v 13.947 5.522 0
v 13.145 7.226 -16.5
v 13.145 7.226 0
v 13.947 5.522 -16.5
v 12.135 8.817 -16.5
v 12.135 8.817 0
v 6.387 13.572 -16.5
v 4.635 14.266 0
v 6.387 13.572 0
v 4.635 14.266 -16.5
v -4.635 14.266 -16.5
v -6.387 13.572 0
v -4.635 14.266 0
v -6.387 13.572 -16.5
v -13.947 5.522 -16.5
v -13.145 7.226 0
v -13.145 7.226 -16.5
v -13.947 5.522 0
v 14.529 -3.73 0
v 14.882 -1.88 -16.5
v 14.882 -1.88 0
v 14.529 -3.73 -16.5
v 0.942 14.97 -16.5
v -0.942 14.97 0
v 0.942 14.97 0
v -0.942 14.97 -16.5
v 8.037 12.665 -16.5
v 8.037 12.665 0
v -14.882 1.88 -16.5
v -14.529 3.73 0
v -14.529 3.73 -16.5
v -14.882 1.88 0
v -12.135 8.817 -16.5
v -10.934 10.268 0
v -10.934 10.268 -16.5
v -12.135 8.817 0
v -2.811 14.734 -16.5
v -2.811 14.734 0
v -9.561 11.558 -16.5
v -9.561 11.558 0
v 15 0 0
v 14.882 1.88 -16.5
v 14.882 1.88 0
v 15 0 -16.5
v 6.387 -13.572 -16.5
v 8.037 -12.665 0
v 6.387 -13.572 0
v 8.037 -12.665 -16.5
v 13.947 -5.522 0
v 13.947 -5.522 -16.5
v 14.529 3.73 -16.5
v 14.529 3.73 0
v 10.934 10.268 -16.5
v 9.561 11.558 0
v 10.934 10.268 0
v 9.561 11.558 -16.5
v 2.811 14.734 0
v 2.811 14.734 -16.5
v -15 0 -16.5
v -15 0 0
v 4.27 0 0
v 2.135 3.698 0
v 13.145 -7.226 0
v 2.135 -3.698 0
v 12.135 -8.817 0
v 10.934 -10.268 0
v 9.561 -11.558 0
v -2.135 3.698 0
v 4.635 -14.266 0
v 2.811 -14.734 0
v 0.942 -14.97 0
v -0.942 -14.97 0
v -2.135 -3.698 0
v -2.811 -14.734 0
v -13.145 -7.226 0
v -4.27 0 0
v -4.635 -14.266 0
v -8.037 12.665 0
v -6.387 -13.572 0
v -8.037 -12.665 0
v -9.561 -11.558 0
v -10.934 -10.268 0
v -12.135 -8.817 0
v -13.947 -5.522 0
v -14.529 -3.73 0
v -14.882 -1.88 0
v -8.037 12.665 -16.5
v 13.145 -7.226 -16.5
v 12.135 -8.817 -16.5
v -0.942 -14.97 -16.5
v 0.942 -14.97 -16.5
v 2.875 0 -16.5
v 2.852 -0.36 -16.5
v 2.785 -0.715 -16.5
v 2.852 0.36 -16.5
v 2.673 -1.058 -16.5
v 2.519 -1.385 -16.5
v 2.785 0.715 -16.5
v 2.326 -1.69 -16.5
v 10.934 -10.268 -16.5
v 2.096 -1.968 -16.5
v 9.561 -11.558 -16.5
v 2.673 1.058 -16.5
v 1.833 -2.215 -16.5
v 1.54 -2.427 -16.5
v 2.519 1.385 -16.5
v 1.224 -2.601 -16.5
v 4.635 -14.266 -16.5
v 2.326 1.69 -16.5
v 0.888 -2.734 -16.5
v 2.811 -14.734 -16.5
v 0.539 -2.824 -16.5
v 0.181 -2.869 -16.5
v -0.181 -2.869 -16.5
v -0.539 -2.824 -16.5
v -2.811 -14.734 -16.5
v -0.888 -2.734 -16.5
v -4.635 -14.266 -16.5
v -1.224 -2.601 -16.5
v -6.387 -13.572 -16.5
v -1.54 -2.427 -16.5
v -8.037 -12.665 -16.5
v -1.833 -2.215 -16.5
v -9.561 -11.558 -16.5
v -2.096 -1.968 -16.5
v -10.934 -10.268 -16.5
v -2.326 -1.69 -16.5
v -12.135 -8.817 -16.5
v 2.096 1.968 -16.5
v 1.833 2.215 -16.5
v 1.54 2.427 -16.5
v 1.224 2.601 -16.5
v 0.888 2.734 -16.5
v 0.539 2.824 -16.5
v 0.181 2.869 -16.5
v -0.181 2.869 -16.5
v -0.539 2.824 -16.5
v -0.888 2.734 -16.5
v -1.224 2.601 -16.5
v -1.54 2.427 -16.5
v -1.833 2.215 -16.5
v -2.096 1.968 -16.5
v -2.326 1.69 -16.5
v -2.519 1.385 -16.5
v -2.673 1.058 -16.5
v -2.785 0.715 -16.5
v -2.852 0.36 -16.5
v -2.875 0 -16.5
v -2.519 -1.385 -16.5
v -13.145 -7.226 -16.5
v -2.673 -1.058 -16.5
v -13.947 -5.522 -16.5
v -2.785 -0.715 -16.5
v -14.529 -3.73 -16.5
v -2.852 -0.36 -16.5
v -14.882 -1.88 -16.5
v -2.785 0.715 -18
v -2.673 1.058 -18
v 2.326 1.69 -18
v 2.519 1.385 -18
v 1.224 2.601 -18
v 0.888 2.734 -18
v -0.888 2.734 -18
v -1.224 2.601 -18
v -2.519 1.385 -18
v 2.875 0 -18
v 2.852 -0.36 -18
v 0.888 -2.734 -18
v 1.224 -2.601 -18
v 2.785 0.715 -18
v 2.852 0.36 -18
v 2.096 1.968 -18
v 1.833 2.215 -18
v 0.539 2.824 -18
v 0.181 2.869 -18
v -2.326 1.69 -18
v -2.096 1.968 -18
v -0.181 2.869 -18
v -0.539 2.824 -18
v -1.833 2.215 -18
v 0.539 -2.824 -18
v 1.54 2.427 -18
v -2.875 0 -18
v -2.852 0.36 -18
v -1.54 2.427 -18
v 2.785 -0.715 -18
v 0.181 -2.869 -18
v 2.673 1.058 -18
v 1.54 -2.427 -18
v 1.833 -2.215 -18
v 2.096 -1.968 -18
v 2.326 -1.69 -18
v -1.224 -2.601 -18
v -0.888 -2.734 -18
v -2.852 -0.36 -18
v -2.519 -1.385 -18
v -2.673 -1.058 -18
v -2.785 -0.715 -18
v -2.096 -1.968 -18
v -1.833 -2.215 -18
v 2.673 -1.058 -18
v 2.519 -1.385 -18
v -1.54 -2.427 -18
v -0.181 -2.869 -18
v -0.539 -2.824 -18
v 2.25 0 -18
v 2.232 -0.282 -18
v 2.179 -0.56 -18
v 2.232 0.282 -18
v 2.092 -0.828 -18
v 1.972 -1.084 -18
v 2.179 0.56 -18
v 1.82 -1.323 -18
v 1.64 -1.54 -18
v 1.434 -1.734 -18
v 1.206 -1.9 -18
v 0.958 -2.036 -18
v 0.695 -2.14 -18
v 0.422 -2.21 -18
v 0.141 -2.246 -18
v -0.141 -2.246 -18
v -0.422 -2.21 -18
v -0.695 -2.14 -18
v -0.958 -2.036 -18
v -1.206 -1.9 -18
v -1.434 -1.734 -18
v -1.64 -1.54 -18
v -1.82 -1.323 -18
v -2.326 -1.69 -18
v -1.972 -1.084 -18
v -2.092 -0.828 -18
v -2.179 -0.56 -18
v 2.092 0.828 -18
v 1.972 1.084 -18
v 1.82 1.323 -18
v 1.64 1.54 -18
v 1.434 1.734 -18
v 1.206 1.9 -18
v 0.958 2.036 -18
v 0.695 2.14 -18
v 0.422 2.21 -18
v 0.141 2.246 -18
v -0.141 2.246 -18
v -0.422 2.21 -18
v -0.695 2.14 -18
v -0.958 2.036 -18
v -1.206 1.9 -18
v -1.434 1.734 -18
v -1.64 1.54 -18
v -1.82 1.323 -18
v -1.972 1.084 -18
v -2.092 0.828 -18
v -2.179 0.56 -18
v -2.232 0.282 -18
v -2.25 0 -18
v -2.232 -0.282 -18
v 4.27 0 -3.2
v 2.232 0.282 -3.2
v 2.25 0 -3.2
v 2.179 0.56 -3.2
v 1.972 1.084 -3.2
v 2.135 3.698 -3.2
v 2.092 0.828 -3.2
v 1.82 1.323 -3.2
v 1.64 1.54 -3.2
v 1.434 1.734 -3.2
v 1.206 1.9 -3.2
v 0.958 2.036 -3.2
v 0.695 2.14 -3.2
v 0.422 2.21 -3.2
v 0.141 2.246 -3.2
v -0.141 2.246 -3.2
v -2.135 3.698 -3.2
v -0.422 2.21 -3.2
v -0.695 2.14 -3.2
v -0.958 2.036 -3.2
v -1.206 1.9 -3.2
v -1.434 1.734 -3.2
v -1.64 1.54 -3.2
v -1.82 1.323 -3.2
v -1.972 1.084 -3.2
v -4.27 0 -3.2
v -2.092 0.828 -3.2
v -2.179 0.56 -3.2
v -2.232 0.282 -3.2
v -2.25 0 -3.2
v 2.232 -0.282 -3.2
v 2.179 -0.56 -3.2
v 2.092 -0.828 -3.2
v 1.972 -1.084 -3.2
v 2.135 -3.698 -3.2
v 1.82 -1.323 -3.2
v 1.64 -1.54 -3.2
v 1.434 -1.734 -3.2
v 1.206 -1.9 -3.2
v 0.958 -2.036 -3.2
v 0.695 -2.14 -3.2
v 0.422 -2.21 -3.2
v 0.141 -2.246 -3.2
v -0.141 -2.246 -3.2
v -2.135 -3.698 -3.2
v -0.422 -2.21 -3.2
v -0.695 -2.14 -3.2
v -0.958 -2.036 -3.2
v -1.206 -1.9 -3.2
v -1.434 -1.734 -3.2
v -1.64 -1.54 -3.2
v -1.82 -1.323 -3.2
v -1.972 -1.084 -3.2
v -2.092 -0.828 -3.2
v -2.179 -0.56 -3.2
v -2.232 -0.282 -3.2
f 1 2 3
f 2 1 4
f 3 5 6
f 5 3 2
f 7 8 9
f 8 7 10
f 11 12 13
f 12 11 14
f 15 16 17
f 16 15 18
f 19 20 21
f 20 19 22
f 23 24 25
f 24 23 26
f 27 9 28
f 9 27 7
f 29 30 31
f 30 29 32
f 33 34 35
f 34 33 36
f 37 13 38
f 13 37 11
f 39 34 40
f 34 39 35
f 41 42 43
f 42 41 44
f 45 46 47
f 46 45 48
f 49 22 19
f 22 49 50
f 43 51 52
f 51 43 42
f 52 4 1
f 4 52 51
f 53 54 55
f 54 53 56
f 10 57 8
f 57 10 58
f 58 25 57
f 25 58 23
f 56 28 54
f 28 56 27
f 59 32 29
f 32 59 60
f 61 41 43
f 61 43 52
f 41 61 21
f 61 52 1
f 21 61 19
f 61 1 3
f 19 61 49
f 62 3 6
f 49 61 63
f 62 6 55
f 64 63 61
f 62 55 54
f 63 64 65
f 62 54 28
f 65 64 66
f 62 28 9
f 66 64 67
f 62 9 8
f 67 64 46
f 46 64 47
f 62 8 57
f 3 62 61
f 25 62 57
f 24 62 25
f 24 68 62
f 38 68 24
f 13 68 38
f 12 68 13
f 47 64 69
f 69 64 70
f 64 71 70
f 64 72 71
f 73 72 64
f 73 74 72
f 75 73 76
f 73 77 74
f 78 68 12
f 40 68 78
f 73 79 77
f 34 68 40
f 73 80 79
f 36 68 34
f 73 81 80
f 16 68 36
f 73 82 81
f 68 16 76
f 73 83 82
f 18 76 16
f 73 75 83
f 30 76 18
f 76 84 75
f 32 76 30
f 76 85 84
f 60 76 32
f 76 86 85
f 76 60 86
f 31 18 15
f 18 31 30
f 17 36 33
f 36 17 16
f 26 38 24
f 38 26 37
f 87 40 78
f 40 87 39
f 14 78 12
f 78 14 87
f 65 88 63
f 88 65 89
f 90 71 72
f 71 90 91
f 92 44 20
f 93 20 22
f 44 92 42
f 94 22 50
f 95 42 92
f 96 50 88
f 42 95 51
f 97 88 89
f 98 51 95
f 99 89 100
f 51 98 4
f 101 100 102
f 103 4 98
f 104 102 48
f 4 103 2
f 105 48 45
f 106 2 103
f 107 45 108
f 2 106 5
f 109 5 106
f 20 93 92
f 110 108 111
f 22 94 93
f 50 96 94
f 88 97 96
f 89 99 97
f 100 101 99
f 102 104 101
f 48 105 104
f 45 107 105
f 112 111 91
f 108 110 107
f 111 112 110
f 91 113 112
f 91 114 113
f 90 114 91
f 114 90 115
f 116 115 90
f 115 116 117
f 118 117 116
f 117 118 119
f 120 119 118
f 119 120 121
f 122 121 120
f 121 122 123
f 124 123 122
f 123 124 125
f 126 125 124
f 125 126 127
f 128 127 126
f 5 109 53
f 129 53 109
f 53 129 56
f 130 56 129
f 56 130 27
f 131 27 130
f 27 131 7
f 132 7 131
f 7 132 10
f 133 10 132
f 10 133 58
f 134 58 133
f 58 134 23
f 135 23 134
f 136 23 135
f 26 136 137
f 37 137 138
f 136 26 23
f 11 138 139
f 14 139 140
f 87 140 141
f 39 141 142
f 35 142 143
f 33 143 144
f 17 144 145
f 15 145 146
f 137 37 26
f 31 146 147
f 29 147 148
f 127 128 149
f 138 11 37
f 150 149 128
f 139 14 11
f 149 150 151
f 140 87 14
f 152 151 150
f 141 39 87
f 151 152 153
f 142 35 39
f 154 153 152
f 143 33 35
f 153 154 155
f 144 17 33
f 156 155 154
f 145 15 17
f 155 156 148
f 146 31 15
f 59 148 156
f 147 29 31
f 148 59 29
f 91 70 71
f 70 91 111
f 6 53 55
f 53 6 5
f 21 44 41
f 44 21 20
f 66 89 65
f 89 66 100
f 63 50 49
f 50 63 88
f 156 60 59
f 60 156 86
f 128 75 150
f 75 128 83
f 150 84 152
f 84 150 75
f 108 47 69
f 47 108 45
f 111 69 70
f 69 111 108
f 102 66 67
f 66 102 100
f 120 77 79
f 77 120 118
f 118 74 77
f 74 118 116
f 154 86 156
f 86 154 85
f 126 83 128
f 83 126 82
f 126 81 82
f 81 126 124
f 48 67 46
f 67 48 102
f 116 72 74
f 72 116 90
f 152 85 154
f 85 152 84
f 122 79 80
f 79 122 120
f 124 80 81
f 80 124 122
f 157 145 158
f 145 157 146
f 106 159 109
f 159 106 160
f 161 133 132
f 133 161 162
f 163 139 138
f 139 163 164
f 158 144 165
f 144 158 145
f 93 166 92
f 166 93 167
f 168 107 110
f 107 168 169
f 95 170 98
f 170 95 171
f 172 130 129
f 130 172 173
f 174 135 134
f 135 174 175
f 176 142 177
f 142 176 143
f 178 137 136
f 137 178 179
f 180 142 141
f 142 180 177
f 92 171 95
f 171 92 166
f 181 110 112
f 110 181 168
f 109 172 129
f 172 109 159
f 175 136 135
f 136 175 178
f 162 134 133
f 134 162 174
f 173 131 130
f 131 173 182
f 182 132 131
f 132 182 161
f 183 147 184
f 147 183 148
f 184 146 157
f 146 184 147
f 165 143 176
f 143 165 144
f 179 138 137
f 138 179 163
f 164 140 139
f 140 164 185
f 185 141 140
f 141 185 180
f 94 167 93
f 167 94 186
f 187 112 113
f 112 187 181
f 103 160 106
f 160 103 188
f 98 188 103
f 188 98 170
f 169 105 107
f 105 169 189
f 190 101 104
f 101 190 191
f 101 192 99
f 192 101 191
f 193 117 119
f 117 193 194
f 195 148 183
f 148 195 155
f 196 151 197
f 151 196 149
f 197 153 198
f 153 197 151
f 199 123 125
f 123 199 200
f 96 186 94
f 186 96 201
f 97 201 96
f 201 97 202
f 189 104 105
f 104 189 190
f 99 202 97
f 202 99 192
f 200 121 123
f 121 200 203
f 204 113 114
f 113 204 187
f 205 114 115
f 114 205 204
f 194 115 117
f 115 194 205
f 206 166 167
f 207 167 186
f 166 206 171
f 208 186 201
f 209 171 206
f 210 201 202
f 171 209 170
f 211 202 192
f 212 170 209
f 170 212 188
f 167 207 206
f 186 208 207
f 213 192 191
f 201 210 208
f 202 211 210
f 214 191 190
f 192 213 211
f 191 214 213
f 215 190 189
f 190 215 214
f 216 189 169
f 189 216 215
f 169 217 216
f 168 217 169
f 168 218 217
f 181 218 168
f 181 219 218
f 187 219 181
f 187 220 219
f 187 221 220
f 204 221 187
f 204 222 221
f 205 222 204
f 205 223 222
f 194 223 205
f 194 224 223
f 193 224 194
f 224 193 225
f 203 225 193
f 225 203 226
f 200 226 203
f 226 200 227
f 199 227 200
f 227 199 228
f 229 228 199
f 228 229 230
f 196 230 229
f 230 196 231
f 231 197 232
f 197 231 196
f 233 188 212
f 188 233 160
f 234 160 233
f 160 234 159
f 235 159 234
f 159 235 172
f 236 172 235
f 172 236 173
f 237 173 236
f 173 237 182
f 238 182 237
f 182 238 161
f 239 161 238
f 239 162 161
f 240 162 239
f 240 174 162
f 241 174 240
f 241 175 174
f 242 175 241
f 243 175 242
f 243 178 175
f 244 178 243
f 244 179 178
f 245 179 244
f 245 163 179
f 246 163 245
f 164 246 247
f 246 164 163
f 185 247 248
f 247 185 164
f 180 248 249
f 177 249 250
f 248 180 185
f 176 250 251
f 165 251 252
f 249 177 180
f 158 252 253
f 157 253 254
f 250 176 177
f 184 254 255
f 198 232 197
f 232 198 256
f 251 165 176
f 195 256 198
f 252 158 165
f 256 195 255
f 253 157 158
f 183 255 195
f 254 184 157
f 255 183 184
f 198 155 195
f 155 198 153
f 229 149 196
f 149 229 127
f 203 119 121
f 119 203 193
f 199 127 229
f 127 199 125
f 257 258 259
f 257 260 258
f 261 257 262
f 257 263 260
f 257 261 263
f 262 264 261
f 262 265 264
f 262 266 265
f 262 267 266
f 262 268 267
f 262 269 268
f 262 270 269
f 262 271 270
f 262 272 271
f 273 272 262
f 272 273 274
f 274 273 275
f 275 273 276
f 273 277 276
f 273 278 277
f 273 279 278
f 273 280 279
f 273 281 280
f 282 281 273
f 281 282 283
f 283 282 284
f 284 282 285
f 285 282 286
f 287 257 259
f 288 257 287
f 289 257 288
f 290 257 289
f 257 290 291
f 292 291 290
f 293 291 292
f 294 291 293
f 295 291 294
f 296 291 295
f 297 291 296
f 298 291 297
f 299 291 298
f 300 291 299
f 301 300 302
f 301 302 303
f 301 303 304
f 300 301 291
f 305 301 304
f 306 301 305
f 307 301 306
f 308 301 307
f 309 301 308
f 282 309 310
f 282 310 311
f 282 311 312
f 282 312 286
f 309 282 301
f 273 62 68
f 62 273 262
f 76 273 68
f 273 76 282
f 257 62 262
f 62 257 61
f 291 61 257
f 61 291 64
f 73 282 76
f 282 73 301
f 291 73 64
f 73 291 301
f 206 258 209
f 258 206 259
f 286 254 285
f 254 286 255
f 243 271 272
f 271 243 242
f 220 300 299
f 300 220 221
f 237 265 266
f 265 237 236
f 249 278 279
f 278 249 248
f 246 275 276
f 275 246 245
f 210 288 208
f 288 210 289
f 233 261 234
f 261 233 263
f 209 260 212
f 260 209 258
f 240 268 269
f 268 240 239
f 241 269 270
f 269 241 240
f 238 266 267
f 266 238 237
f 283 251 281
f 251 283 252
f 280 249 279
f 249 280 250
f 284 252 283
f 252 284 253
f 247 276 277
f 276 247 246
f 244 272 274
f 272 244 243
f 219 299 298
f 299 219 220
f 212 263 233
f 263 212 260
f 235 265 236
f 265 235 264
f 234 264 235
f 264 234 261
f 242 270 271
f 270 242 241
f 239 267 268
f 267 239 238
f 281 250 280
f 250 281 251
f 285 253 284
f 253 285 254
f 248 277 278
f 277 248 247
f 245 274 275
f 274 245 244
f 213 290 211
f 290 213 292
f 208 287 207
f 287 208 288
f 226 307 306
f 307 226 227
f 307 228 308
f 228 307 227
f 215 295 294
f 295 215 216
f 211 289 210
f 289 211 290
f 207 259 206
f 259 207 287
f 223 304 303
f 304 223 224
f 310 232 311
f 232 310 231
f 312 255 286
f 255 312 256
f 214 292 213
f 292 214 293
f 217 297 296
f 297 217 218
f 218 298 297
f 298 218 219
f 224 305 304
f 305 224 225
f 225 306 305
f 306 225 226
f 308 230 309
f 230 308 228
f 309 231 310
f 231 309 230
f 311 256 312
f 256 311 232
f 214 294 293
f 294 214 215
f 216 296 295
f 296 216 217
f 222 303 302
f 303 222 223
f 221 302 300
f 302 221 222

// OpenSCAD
$fn = 50;

difference() {
	union() {
		translate(v = [0, 0, -16.5]) {
			cylinder(h = 16.5, r = 15.0);
		}
		#translate(v = [0, 0, -18.0]) {
			cylinder(h = 18, r = 2.875);
		}
	}
	union() {
		translate(v = [0, 0, 0]) {
			rotate(a = [0, 0, 0]) {
				difference() {
					union() {
						translate(v = [0, 0, -3.2]) {
							linear_extrude(height = 3.2) {
								polygon(points = [[4.2698, 0.0], [2.1349000000000005, 3.697755269078796], [-2.134899999999999, 3.6977552690787965], [-4.2698, 5.228996902999369e-16], [-2.134900000000002, -3.6977552690787956], [2.1348999999999974, -3.697755269078798]]);
							}
						}
					}
					union();
				}
			}
		}
		#translate(v = [0, 0, -100.0]) {
			cylinder(h = 200, r = 2.25);
		}
	}
}
